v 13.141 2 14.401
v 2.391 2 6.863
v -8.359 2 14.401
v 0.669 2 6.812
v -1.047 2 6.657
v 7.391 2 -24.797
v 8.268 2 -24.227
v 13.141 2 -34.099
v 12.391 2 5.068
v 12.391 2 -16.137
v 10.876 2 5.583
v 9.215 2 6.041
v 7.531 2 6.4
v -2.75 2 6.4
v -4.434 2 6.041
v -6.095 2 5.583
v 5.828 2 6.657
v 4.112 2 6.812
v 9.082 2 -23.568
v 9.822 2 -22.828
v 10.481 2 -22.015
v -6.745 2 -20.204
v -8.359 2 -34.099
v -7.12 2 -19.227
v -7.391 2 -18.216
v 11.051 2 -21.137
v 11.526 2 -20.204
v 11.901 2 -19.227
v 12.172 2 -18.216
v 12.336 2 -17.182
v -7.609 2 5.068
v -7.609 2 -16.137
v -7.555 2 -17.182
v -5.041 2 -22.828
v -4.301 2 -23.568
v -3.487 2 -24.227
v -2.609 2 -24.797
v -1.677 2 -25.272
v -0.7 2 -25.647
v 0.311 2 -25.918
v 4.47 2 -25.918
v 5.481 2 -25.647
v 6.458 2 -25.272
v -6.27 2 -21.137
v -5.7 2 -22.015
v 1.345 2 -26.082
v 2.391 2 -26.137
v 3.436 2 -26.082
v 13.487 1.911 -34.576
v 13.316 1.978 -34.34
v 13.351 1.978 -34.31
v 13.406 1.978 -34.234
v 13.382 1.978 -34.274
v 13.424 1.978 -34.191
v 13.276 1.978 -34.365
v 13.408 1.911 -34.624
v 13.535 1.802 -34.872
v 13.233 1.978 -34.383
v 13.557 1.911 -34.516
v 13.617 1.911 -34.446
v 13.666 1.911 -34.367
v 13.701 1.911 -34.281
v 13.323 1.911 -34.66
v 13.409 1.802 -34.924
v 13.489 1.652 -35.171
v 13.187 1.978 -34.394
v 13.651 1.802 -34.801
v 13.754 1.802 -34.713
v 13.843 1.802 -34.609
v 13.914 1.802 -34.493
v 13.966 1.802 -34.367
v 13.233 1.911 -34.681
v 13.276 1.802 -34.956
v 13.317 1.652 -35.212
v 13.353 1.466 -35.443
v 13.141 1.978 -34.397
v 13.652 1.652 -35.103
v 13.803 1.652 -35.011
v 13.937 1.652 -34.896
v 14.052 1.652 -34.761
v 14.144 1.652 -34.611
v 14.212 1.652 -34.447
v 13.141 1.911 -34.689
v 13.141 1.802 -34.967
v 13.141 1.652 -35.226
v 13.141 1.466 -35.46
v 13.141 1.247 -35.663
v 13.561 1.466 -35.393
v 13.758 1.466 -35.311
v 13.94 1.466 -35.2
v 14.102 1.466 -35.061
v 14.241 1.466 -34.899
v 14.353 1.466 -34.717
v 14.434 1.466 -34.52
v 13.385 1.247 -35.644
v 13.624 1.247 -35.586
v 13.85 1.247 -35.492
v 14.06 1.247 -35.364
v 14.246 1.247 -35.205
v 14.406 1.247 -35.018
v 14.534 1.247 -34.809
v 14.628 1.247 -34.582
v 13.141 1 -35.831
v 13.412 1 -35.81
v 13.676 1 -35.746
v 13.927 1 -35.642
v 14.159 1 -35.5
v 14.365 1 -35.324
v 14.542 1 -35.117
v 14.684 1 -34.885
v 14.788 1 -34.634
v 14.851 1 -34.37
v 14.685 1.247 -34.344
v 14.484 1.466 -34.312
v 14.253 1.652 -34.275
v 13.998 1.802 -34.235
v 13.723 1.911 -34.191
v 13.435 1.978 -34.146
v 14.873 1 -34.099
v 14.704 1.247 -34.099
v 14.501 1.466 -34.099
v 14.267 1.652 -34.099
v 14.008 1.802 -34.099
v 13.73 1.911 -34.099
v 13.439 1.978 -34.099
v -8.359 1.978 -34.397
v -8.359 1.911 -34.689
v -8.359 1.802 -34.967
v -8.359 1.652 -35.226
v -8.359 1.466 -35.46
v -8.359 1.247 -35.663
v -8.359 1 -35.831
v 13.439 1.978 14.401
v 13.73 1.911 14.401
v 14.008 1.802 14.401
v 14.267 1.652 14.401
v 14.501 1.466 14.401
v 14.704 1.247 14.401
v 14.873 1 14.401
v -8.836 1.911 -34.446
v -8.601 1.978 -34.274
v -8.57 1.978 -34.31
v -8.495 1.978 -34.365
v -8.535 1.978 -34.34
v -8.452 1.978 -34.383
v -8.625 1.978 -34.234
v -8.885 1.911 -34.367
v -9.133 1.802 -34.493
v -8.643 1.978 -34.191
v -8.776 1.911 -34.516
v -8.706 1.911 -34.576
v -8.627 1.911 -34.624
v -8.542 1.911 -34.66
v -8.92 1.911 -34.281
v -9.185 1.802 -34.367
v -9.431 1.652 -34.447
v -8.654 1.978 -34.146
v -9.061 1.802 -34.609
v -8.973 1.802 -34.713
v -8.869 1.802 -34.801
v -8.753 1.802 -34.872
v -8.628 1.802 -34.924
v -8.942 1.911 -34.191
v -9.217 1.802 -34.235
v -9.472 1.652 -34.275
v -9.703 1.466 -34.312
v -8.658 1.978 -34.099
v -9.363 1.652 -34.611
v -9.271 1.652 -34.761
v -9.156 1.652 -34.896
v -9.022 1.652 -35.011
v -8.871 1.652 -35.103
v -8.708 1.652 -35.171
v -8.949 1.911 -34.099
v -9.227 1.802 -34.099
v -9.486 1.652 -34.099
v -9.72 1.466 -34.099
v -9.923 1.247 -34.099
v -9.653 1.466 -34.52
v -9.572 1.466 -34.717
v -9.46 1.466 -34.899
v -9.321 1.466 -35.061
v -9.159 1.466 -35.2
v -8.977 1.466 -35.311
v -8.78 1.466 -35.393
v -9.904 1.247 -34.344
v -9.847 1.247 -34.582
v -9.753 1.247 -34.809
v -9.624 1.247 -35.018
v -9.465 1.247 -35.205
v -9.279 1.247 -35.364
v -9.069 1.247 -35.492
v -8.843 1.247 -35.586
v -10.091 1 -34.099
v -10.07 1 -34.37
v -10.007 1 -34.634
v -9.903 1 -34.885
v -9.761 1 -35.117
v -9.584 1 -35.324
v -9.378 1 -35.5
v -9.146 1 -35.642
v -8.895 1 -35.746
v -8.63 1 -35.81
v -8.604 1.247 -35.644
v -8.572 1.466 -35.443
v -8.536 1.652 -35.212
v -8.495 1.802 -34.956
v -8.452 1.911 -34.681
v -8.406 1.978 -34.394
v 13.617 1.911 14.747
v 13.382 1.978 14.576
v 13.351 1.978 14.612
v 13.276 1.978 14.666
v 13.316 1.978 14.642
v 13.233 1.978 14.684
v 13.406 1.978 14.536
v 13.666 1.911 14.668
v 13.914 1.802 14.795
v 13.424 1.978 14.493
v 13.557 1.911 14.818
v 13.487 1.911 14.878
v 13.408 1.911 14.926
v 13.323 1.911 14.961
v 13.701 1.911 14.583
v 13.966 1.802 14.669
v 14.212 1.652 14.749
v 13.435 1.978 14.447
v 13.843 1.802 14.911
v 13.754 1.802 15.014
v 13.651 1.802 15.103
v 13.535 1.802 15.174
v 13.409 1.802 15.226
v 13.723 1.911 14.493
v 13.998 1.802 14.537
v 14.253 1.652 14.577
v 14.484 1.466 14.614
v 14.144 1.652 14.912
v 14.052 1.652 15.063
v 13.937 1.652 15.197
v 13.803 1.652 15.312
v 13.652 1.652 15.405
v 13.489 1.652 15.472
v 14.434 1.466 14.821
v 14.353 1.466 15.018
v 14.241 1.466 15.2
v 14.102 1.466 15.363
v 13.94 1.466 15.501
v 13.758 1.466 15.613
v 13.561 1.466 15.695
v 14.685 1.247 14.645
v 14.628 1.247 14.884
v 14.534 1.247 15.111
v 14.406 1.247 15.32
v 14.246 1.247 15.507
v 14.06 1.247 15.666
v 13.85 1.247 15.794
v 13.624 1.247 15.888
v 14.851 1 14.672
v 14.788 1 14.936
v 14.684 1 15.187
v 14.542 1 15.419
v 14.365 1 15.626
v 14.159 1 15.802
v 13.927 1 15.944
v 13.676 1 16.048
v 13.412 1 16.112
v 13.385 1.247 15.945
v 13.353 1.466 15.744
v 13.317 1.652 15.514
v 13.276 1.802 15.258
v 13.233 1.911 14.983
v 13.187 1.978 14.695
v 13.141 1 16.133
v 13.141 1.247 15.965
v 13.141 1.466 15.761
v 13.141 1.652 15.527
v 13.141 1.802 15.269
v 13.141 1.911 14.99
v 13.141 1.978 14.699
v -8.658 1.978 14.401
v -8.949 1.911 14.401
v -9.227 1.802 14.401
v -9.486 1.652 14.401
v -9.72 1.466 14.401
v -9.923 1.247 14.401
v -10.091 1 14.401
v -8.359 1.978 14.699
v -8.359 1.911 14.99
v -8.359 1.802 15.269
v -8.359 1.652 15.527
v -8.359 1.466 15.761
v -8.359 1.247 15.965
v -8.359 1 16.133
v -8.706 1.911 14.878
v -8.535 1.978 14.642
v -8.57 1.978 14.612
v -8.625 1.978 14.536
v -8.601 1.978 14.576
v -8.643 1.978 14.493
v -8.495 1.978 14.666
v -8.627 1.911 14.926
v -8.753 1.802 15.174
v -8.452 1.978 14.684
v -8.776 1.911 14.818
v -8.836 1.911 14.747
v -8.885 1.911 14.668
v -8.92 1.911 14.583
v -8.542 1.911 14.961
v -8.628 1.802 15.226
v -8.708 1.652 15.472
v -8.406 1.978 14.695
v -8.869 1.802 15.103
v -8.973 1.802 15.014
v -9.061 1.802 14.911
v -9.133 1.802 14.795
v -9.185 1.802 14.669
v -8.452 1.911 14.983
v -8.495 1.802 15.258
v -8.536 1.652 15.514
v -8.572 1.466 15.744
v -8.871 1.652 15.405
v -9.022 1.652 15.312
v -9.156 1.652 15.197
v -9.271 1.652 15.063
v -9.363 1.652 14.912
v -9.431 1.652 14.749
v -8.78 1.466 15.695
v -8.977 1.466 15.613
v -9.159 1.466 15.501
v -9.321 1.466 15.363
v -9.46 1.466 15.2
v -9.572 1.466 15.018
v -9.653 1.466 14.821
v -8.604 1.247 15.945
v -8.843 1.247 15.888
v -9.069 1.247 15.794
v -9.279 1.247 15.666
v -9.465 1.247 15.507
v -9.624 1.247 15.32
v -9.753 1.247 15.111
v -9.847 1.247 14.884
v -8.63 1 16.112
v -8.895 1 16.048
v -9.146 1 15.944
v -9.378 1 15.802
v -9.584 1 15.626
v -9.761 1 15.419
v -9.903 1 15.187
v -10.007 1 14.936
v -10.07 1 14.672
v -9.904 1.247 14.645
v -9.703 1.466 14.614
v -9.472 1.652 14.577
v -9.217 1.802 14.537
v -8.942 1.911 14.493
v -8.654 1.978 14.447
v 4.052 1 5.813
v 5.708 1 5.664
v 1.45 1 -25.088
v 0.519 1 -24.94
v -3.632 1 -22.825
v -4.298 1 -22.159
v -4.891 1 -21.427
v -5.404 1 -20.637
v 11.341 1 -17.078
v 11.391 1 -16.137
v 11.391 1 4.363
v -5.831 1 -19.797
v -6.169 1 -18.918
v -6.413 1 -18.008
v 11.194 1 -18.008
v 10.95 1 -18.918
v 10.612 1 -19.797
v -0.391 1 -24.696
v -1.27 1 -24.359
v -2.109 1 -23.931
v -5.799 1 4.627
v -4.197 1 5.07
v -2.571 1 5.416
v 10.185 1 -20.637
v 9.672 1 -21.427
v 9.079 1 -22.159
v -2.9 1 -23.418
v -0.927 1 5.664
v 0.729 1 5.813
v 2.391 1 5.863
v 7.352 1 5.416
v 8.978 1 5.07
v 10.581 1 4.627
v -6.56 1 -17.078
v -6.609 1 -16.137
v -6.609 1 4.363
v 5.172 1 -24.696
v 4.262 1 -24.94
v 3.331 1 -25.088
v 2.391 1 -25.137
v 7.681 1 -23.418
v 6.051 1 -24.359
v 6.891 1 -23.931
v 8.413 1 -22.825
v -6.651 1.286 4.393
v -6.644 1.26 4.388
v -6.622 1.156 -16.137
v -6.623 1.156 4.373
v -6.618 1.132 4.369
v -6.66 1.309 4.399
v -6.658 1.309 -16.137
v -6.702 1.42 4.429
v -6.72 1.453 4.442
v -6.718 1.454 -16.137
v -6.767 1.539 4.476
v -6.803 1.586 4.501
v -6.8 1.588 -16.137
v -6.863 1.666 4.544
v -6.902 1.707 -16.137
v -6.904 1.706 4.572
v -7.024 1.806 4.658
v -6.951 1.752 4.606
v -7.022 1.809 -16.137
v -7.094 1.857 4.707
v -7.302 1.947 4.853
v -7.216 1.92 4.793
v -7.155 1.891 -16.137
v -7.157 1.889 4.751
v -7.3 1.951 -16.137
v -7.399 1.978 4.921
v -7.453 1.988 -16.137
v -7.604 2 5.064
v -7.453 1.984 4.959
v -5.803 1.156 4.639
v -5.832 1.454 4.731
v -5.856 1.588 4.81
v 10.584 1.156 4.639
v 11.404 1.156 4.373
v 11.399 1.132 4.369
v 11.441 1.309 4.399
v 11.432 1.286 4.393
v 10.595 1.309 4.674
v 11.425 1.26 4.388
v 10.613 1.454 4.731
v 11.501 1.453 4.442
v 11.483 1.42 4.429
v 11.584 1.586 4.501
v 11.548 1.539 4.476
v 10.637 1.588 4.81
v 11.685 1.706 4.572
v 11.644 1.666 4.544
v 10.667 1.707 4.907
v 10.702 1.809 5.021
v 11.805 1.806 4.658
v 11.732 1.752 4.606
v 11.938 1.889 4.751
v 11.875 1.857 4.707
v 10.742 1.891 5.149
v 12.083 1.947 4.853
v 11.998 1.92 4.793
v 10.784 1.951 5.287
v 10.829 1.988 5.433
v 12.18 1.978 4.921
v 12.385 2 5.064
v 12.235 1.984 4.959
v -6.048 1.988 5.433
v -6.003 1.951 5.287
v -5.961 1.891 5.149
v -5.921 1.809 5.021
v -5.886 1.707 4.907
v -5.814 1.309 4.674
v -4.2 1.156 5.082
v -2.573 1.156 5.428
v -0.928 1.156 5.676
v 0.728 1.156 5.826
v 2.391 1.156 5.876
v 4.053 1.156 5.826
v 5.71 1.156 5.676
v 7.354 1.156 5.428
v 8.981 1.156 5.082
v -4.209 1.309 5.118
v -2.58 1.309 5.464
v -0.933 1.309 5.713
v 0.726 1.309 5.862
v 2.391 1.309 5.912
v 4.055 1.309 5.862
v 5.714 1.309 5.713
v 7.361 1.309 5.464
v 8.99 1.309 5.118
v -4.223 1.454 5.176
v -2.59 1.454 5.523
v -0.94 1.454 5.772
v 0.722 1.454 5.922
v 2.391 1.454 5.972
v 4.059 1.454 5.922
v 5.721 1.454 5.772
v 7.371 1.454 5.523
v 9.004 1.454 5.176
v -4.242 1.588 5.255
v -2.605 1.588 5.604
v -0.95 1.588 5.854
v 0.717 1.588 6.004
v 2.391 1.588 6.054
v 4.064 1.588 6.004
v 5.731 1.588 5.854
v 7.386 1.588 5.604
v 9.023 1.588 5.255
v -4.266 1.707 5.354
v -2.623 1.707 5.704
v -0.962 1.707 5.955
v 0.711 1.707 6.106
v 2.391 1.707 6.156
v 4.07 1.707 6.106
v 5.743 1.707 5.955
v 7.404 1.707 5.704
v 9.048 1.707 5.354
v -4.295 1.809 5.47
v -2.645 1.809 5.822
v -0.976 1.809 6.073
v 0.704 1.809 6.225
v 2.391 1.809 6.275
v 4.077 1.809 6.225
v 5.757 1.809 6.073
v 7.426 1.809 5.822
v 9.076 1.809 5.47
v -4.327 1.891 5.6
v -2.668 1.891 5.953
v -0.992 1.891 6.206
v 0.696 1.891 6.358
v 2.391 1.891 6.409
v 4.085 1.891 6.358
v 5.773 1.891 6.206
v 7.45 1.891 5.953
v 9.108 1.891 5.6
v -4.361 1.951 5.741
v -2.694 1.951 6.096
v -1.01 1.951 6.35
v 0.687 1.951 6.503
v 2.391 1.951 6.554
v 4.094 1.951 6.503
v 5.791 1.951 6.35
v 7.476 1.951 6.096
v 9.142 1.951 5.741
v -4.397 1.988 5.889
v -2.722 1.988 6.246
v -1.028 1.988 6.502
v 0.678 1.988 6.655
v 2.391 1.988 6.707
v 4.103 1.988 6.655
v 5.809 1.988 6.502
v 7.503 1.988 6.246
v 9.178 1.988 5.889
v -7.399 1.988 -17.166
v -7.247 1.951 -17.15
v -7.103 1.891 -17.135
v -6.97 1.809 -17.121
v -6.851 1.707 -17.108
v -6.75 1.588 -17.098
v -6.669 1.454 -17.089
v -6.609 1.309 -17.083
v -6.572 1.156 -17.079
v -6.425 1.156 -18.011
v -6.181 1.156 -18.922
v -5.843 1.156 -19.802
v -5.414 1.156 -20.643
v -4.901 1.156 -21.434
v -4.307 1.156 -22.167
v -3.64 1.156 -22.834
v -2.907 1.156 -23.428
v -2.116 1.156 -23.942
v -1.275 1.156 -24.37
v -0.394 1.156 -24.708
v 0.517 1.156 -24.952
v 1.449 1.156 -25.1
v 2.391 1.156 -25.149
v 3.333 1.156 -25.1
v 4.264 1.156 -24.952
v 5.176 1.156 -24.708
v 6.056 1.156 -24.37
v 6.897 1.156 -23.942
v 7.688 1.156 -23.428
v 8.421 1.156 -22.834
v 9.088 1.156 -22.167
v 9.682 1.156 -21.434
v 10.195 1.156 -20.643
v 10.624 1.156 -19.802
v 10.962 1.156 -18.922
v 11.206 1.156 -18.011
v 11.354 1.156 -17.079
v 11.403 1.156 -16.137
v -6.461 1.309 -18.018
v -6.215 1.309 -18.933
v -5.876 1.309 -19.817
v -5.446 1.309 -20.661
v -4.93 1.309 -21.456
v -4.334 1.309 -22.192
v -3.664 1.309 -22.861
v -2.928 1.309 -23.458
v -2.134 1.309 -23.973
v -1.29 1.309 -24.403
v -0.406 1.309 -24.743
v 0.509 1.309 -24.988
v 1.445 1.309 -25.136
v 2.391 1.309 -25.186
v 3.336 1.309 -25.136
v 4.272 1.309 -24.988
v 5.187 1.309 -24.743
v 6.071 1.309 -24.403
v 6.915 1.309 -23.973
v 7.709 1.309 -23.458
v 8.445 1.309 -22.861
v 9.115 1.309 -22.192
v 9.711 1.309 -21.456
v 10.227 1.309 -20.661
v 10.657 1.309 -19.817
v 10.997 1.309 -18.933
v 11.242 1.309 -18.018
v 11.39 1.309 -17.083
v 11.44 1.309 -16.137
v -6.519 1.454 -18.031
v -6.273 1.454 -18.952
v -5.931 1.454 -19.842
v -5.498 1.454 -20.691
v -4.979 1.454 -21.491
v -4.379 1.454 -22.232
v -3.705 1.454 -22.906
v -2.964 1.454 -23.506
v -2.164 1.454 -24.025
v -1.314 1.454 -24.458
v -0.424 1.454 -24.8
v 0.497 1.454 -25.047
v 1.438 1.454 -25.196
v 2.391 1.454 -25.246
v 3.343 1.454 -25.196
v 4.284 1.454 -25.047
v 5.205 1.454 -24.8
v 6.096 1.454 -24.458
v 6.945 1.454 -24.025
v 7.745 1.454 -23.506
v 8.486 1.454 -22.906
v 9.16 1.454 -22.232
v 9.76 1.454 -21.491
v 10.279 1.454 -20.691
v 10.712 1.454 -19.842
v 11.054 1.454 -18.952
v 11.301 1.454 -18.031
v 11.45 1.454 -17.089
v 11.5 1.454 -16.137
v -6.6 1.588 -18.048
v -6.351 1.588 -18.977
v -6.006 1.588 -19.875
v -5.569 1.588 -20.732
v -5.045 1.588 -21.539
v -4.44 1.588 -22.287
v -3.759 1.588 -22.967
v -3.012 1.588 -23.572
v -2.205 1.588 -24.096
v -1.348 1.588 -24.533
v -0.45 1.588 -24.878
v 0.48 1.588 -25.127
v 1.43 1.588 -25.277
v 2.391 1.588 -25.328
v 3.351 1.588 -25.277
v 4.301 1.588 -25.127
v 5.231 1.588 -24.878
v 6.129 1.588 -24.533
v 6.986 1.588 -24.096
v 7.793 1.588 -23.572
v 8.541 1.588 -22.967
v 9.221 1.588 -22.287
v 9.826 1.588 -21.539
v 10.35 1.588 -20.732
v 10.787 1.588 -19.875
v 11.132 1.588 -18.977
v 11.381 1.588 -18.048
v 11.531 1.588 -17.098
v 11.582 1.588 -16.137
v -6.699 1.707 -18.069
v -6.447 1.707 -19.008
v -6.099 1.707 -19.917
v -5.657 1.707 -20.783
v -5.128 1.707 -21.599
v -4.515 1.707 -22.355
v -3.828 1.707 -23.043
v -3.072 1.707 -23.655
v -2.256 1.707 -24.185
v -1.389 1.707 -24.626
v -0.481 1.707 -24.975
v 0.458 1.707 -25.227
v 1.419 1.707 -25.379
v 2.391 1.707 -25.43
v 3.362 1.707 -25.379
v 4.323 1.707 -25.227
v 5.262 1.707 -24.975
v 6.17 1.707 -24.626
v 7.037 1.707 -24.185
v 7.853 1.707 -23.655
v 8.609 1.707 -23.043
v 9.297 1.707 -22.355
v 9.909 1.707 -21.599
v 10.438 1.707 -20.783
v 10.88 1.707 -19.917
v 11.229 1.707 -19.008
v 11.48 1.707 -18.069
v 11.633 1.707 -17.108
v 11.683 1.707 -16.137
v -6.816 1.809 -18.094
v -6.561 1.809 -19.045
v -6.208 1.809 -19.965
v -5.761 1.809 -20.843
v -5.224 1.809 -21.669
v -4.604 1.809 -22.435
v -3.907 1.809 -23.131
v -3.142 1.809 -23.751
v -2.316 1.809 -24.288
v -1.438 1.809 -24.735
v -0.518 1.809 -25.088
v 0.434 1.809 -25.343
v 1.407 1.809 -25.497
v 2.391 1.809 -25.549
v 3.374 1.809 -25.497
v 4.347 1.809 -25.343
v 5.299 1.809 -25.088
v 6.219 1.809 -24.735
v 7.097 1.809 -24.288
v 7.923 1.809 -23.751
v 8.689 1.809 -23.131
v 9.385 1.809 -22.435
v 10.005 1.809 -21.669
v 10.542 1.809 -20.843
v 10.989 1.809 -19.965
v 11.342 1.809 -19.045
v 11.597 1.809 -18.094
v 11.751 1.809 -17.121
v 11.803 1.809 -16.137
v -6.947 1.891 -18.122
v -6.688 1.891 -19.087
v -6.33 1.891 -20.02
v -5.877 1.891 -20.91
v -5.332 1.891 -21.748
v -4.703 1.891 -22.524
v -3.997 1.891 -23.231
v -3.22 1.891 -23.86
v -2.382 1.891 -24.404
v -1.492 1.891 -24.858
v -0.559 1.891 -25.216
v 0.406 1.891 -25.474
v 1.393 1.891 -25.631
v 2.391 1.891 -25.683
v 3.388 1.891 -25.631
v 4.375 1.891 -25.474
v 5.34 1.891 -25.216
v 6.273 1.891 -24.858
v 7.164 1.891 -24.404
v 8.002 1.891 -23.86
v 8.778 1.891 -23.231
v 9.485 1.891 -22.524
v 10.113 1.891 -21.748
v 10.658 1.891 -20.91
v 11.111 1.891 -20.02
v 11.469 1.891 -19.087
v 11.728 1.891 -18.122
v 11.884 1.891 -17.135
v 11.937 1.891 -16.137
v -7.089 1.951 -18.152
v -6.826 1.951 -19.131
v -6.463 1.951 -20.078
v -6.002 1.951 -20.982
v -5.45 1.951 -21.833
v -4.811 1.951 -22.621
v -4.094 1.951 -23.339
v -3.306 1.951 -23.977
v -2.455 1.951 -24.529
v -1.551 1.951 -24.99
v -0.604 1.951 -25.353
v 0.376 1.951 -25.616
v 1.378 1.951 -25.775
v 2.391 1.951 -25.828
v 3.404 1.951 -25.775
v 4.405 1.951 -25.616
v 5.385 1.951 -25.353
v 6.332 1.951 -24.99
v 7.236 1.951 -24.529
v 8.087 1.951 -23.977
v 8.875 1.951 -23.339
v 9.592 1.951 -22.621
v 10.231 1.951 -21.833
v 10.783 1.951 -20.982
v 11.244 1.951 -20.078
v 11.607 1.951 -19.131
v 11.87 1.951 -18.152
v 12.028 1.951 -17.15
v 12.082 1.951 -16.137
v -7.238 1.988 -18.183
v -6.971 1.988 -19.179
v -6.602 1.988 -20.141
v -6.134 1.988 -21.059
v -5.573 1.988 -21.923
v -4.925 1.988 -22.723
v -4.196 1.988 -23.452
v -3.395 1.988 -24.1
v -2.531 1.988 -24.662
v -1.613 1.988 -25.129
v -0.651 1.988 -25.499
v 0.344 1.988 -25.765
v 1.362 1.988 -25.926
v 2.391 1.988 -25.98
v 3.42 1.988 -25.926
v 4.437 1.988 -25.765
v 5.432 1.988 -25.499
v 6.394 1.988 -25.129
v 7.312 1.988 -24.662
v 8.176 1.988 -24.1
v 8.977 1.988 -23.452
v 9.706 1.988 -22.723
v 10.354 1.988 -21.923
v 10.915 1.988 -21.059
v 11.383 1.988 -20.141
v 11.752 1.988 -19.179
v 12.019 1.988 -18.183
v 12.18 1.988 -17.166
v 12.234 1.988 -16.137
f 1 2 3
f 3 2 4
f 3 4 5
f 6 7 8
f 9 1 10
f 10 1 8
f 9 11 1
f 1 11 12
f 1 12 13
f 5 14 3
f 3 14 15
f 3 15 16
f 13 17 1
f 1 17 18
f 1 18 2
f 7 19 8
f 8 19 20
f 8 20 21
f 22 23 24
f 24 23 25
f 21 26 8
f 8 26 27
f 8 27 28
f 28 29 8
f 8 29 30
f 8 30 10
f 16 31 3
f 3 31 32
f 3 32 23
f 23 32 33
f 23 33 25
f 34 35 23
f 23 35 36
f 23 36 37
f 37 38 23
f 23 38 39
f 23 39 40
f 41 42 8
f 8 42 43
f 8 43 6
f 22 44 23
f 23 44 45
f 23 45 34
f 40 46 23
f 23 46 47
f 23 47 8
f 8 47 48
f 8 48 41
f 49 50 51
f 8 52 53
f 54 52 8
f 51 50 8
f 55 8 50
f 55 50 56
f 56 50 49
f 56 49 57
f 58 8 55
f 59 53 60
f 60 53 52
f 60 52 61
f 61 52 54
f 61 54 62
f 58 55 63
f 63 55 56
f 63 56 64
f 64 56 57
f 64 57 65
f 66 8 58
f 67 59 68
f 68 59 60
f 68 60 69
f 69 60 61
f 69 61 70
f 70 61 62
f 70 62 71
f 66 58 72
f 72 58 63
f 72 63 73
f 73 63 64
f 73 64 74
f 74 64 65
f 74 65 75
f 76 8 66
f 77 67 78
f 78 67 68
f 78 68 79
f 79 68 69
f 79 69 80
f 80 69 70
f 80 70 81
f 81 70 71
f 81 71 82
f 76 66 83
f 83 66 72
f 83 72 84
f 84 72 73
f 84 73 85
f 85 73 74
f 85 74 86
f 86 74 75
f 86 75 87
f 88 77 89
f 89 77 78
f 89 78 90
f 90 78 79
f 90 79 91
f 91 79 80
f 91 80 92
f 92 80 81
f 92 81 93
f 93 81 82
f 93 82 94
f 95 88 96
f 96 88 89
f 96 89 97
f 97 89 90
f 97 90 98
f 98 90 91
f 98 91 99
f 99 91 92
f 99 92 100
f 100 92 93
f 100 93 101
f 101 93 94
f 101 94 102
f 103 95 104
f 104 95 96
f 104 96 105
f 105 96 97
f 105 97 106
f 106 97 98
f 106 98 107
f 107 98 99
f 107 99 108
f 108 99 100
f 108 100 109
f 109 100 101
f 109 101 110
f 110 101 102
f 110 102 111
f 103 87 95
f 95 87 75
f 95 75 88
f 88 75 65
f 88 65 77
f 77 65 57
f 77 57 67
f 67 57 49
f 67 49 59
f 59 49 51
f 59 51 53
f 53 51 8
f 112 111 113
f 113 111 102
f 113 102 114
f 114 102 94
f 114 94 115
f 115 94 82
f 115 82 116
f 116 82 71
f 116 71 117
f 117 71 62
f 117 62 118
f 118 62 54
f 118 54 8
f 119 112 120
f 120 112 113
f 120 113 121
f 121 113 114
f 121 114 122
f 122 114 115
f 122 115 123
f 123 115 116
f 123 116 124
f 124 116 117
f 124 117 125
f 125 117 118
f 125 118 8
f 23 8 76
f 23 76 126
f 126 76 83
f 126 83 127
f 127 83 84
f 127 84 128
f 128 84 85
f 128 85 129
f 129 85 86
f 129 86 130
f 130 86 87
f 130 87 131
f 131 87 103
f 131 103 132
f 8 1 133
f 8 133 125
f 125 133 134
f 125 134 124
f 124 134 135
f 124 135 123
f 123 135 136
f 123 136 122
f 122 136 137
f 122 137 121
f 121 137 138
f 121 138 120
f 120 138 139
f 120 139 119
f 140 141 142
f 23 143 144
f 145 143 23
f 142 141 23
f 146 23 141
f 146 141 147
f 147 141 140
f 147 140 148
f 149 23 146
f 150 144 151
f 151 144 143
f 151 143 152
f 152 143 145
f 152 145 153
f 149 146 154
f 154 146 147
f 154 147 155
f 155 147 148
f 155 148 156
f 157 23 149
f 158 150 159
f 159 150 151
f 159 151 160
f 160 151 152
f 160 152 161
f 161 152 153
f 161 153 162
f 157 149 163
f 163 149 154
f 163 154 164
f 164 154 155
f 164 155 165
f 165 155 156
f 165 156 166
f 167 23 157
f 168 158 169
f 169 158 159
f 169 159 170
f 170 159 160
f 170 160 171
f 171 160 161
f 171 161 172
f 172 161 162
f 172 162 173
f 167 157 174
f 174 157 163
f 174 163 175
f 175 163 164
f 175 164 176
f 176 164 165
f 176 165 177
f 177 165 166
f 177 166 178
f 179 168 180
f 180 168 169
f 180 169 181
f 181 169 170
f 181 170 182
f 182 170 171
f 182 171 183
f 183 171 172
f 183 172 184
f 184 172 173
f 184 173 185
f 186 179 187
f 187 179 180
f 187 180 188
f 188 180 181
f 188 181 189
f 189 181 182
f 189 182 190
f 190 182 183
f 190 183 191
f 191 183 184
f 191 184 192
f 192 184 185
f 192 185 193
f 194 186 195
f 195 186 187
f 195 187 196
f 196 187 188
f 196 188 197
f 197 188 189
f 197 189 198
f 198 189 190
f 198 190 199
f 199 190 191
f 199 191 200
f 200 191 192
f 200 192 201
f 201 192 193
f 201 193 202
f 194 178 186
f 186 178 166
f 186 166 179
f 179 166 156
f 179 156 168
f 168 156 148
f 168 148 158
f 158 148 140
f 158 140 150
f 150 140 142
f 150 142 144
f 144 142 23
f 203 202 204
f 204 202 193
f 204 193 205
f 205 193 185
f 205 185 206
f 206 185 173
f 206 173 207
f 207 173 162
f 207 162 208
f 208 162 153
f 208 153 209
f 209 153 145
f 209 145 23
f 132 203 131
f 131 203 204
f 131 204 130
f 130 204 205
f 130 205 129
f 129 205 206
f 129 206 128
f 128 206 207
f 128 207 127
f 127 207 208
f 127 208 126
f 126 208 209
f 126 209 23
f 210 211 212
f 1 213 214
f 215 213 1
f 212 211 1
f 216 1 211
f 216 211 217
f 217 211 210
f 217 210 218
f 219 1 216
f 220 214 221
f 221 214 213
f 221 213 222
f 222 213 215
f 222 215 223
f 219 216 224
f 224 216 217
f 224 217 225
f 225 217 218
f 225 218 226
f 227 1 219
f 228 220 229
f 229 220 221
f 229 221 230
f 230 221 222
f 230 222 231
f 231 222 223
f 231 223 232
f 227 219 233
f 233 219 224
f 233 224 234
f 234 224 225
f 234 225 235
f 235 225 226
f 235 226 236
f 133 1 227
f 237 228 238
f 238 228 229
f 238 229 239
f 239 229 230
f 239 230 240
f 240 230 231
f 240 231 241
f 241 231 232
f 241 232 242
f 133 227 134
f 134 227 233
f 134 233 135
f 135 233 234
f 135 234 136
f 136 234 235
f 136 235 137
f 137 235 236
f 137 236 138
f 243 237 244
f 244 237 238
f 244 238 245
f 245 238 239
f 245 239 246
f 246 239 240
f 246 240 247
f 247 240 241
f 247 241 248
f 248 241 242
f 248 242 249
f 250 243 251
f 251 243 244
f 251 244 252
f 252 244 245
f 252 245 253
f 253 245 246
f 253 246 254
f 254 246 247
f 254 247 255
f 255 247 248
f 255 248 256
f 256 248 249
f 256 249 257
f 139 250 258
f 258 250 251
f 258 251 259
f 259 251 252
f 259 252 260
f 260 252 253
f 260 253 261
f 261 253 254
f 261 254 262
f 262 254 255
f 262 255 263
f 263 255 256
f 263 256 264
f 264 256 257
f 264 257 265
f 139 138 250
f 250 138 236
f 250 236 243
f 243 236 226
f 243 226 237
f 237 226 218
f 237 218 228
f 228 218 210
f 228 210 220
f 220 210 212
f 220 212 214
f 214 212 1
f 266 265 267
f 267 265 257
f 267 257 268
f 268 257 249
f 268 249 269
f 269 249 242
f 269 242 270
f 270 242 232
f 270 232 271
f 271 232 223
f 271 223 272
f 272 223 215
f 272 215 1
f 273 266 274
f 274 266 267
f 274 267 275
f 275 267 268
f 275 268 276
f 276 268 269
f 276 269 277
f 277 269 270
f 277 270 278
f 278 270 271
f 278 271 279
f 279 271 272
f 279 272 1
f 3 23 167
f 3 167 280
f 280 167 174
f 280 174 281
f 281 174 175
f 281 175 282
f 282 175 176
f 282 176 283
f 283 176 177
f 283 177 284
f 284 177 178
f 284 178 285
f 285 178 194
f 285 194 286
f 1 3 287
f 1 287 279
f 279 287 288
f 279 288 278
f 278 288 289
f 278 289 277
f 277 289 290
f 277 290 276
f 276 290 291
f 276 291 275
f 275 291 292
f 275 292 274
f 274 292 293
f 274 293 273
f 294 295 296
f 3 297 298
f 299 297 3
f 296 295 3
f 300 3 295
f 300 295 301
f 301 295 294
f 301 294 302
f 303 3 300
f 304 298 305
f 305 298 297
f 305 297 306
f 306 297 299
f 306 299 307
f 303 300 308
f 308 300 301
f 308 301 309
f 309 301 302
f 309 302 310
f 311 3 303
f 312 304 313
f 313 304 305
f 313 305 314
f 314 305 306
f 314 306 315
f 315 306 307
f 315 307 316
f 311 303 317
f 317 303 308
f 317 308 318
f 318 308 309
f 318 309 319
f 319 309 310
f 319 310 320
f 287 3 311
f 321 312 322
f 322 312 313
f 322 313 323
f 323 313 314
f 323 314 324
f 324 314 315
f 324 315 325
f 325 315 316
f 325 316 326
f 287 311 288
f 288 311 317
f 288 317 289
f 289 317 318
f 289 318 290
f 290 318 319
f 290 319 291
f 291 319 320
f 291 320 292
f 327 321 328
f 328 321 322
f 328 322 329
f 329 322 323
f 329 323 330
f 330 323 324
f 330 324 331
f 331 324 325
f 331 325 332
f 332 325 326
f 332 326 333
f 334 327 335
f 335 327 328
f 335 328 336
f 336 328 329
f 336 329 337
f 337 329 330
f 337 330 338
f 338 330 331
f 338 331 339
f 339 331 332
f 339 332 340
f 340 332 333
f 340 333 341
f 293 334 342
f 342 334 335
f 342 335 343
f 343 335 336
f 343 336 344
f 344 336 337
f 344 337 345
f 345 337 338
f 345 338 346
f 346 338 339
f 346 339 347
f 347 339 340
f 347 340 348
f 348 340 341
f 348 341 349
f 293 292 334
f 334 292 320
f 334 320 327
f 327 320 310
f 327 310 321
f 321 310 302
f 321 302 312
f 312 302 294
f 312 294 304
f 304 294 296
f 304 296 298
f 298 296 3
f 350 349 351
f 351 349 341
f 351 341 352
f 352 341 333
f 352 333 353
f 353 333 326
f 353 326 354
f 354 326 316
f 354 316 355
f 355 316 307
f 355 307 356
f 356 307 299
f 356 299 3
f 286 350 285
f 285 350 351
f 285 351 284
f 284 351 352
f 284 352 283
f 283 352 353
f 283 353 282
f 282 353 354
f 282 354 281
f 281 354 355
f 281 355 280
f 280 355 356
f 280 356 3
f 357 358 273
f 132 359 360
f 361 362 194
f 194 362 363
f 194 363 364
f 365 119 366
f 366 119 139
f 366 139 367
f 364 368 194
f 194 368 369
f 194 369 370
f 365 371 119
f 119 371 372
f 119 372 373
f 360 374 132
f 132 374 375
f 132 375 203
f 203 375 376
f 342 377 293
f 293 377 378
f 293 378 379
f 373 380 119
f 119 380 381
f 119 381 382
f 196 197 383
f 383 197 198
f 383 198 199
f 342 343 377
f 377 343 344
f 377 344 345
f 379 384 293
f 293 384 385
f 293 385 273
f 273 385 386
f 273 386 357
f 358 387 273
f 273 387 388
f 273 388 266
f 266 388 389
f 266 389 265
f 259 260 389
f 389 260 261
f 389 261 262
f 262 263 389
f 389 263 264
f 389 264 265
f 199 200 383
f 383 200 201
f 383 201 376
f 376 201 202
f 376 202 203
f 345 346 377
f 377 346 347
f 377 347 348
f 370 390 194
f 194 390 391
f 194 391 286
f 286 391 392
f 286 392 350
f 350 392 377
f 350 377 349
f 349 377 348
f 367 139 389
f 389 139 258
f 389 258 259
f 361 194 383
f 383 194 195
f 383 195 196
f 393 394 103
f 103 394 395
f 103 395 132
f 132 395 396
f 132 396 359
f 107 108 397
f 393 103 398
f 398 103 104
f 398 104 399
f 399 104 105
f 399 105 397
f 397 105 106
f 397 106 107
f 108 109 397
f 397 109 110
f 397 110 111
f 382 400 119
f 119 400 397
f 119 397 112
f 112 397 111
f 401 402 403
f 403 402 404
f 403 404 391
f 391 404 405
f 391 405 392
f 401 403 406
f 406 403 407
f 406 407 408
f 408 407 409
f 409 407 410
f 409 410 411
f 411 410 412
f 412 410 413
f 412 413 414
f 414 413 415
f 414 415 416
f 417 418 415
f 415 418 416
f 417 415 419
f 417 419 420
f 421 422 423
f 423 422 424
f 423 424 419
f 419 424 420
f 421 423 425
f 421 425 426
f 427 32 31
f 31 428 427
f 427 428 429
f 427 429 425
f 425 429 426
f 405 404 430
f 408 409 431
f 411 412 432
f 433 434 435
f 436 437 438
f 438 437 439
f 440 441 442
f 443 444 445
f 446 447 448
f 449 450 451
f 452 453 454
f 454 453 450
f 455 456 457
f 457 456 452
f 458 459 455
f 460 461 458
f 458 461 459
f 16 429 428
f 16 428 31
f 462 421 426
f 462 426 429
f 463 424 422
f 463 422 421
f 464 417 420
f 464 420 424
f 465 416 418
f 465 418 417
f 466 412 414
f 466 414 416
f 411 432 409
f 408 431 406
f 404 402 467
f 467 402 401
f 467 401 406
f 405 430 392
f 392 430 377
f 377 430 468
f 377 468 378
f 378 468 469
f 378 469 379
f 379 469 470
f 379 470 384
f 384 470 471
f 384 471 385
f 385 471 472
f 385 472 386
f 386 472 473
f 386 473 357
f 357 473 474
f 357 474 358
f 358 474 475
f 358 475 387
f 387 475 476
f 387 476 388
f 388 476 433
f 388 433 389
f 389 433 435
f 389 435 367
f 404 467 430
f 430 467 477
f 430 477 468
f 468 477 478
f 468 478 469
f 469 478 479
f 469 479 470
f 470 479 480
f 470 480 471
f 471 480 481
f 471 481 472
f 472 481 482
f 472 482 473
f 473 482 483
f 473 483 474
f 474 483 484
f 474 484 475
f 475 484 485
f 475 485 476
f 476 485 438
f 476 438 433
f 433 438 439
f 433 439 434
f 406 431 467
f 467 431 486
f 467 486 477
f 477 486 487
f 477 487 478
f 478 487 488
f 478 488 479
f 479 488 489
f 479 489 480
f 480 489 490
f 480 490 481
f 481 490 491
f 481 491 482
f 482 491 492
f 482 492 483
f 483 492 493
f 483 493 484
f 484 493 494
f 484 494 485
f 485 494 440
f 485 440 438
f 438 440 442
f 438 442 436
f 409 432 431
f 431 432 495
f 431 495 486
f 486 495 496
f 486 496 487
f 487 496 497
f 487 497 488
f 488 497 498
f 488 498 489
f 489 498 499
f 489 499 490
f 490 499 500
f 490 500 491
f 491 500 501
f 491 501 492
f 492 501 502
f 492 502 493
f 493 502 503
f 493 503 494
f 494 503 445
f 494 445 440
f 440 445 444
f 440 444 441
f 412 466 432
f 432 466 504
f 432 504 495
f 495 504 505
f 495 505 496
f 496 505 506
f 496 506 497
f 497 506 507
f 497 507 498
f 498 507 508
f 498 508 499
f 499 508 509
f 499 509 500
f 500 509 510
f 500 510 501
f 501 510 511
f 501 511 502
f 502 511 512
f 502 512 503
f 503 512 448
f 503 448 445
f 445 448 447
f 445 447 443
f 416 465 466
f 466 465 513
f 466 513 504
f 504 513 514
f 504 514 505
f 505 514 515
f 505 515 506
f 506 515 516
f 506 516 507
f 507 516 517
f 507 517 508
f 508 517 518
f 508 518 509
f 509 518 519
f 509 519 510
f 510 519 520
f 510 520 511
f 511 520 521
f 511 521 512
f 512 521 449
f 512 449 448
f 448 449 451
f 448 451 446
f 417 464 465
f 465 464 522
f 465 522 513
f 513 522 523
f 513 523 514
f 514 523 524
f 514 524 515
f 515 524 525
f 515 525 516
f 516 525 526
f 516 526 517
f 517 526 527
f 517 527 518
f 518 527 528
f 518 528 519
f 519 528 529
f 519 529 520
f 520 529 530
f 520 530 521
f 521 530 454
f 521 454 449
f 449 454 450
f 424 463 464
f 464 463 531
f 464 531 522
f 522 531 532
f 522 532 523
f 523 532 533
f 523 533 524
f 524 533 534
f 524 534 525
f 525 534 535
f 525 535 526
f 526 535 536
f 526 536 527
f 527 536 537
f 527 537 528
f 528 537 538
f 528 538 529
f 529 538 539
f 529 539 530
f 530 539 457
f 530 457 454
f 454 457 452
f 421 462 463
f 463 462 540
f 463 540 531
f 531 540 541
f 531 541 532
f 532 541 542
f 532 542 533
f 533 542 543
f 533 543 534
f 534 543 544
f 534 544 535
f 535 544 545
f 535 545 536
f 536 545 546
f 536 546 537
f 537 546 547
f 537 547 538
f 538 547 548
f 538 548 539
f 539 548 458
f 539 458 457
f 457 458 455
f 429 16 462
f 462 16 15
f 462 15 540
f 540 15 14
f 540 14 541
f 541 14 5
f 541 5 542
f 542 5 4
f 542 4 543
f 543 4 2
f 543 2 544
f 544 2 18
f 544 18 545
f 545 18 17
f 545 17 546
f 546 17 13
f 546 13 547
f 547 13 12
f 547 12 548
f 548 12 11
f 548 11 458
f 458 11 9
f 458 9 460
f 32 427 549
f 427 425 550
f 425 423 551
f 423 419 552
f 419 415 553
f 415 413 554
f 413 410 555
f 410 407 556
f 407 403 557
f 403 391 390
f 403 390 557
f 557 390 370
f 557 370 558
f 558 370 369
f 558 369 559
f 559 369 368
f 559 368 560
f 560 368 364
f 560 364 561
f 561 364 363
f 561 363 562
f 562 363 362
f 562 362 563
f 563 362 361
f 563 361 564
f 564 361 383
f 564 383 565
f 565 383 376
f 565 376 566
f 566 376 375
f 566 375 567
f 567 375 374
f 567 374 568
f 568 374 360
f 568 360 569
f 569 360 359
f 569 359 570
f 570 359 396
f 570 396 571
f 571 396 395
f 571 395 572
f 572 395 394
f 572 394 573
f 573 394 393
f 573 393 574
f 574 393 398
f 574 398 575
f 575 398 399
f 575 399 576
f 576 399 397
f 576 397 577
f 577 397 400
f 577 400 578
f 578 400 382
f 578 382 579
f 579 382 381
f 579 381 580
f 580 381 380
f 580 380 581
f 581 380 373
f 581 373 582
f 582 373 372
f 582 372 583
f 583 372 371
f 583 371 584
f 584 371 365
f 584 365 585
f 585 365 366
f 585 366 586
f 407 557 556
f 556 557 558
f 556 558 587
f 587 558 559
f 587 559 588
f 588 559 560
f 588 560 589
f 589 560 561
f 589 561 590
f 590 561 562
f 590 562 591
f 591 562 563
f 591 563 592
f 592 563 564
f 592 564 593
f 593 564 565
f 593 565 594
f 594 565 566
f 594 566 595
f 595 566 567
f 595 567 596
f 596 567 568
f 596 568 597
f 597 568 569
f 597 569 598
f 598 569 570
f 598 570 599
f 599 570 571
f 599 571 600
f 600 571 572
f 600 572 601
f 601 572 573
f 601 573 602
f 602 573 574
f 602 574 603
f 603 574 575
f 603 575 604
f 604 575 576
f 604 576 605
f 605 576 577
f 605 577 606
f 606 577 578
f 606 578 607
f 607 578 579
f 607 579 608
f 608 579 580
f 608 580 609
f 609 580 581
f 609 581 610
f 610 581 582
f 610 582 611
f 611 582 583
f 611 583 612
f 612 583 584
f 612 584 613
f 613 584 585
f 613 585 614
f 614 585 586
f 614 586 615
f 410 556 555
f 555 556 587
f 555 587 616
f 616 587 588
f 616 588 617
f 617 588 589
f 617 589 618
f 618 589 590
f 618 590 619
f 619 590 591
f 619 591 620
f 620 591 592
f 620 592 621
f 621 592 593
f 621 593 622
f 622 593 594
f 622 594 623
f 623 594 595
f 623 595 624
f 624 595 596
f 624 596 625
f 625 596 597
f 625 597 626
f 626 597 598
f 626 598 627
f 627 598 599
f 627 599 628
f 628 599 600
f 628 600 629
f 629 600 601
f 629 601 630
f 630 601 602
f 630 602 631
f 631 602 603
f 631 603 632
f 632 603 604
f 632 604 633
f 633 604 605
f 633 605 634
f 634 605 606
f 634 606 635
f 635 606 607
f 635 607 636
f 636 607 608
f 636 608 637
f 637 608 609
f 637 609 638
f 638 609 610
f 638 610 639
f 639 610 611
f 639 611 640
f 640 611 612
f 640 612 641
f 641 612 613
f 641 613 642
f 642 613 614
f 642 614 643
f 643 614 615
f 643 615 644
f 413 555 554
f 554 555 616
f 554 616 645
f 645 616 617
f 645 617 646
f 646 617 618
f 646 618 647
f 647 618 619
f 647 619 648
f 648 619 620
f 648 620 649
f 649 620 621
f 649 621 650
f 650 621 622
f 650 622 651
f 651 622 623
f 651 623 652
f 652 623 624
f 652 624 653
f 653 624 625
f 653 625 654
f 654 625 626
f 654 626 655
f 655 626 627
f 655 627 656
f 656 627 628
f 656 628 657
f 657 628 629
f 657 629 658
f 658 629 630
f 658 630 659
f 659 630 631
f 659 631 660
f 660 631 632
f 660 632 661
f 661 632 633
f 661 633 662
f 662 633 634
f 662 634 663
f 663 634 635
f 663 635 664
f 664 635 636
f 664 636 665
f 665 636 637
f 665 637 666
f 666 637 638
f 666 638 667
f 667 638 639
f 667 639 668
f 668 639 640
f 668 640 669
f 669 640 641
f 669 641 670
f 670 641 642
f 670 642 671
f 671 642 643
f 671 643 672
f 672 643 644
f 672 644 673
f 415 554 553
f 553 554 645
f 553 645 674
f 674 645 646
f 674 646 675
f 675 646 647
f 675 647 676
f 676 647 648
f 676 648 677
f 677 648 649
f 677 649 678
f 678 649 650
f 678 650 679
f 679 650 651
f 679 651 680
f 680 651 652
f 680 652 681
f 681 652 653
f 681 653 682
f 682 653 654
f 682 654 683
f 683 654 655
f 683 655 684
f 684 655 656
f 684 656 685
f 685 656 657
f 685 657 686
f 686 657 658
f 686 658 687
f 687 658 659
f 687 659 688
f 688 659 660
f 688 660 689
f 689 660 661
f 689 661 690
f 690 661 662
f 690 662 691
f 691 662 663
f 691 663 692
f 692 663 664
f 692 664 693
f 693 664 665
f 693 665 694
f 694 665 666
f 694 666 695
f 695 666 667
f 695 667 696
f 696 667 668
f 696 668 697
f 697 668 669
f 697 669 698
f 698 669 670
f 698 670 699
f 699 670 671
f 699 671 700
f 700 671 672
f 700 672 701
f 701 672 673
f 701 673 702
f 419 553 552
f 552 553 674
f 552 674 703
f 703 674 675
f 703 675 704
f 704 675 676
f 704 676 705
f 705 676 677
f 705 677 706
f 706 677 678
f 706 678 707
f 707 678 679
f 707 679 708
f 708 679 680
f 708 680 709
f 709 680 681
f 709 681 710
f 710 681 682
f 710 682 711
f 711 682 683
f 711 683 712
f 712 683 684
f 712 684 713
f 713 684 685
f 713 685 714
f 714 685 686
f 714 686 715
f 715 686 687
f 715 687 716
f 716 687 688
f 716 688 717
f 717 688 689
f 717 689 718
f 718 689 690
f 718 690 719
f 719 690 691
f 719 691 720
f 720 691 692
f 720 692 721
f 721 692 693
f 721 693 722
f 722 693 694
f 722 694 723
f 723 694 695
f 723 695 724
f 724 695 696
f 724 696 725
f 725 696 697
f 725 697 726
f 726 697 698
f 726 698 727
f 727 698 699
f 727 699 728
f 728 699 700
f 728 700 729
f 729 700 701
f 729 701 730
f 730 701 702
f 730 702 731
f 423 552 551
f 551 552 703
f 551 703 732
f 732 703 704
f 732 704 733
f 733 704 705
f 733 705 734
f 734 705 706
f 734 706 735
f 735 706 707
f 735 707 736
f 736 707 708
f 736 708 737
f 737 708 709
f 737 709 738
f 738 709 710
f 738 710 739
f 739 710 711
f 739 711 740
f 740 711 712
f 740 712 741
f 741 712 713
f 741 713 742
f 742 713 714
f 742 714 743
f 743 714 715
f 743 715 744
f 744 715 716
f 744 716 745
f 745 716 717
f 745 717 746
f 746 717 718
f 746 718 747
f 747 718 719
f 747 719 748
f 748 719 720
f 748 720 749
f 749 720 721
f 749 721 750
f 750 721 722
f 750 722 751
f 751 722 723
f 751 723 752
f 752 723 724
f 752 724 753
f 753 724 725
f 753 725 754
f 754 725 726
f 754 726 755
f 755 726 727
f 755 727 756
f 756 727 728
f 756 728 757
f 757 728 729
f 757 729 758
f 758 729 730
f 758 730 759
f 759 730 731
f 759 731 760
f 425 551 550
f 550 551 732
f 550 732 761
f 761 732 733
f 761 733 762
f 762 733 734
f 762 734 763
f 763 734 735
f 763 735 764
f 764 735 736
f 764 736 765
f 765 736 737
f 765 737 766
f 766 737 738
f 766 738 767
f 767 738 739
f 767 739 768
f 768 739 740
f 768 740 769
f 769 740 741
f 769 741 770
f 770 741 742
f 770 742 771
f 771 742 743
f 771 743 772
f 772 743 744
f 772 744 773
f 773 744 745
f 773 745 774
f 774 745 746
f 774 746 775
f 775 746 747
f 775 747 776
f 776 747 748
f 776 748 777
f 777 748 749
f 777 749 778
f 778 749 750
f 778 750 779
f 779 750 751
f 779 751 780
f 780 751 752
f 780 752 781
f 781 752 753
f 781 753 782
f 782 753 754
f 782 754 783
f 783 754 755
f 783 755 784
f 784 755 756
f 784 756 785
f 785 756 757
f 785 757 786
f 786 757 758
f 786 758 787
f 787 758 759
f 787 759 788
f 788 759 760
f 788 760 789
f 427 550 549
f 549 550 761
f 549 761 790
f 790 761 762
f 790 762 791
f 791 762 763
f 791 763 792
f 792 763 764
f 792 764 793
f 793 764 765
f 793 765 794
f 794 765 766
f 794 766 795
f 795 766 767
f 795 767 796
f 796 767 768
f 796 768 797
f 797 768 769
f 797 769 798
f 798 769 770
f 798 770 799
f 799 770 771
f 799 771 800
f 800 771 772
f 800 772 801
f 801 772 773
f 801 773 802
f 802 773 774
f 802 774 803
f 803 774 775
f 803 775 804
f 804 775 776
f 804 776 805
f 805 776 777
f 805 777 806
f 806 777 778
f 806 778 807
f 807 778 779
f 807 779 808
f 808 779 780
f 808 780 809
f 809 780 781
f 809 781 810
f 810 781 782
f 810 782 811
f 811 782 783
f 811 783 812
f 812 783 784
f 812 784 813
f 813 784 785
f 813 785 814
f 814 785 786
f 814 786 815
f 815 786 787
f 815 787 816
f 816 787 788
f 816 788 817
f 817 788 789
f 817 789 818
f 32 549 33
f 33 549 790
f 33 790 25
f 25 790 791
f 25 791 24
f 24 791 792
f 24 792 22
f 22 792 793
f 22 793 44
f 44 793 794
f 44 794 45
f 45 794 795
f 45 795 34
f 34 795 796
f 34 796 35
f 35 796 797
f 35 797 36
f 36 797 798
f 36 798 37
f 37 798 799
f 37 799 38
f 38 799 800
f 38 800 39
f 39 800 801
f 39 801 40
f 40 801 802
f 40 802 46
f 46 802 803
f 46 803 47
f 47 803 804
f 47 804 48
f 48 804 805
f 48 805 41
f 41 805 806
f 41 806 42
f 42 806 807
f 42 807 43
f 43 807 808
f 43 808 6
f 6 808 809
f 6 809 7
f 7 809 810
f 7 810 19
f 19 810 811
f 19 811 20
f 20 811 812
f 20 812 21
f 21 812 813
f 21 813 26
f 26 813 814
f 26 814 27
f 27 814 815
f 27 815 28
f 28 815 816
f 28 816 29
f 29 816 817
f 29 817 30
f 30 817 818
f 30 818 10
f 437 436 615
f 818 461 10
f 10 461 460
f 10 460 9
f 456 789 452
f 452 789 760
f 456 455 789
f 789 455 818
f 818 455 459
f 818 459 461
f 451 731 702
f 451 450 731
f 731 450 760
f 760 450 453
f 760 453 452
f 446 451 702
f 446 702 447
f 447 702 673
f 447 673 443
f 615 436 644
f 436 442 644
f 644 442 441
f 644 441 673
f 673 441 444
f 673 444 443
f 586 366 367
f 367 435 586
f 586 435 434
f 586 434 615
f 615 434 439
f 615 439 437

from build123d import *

# Parameters (mm, degrees)
EXTRUDE_1_DEPTH     = 2
FILLET_1_R          = 2
SKETCH_2_W          = 35.782546262
SKETCH_2_H          = 59.110257758
CUT_EXTRUDE_1_DEPTH = 1
FILLET_2_R          = 1


with BuildPart() as part:
    # 草图1 → 凸台-拉伸1 (new body)
    with BuildSketch(Plane(origin=(0, 0, 0), x_dir=(1, 0, 0), z_dir=(0, 1, 0))):
        with BuildLine():
            Line((-8.359432933, 36.099160402), (13.140567067, 36.099160402))
            ThreePointArc((13.140567067, 36.099160402), (14.554780629, 35.513373964), (15.140567067, 34.099160402))
            Line((15.140567067, 34.099160402), (15.140567067, -14.400839598))
            ThreePointArc((15.140567067, -14.400839598), (14.554780629, -15.81505316), (13.140567067, -16.400839598))
            Line((13.140567067, -16.400839598), (-8.359432933, -16.400839598))
            ThreePointArc((-8.359432933, -16.400839598), (-9.773646496, -15.81505316), (-10.359432933, -14.400839598))
            Line((-10.359432933, -14.400839598), (-10.359432933, 34.099160402))
            ThreePointArc((-10.359432933, 34.099160402), (-9.773646496, 35.513373964), (-8.359432933, 36.099160402))
        make_face()
        with BuildLine():
            Line((-6.609432933, 16.136804798), (-6.609432933, -4.363195202))
            ThreePointArc((-6.609432933, -4.363195202), (2.390567067, -5.863195202), (11.390567067, -4.363195202))
            Line((11.390567067, -4.363195202), (11.390567067, 16.136804798))
            ThreePointArc((11.390567067, 16.136804798), (8.754528097, 22.500765829), (2.390567067, 25.136804798))
            ThreePointArc((2.390567067, 25.136804798), (-3.973393964, 22.500765829), (-6.609432933, 16.136804798))
        make_face(mode=Mode.SUBTRACT)
    extrude(amount=EXTRUDE_1_DEPTH)

    # 圆角1
    fillet_1_edges = [part.edges().sort_by_distance(p)[0] for p in [
        (-9.773646496, 2, 15.81505316),
        (2.390567067, 2, 16.400839598),
        (14.554780629, 2, 15.81505316),
        (15.140567067, 2, -9.849160402),
        (-9.773646496, 2, -35.513373964),
        (14.554780629, 2, -35.513373964),
        (2.390567067, 2, -36.099160402),
        (-10.359432933, 2, -9.849160402),
    ]]
    fillet(fillet_1_edges, radius=FILLET_1_R - 0.0001)  # a hair under: the kernel refuses the full size

    # 草图2 → 切除-拉伸1 (cut)
    with BuildSketch(Plane(origin=(0, 0, 0), x_dir=(-1, 0, 0), z_dir=(0, -1, 0))):
        with Locations((0.496790494, 10.685635763)):
            Rectangle(SKETCH_2_W, SKETCH_2_H)
    extrude(amount=-CUT_EXTRUDE_1_DEPTH, mode=Mode.SUBTRACT)

    # 圆角2
    fillet_2_edges = [part.edges().sort_by_distance(p)[0] for p in [
        (11.390567067, 2, -5.886804798),
        (2.390567067, 2, -25.136804798),
        (-6.609432933, 2, -5.886804798),
        (2.390567067, 2, 5.863195202),
    ]]
    fillet(fillet_2_edges, radius=FILLET_2_R - 0.0001)  # a hair under: the kernel refuses the full size


solid = part.part
